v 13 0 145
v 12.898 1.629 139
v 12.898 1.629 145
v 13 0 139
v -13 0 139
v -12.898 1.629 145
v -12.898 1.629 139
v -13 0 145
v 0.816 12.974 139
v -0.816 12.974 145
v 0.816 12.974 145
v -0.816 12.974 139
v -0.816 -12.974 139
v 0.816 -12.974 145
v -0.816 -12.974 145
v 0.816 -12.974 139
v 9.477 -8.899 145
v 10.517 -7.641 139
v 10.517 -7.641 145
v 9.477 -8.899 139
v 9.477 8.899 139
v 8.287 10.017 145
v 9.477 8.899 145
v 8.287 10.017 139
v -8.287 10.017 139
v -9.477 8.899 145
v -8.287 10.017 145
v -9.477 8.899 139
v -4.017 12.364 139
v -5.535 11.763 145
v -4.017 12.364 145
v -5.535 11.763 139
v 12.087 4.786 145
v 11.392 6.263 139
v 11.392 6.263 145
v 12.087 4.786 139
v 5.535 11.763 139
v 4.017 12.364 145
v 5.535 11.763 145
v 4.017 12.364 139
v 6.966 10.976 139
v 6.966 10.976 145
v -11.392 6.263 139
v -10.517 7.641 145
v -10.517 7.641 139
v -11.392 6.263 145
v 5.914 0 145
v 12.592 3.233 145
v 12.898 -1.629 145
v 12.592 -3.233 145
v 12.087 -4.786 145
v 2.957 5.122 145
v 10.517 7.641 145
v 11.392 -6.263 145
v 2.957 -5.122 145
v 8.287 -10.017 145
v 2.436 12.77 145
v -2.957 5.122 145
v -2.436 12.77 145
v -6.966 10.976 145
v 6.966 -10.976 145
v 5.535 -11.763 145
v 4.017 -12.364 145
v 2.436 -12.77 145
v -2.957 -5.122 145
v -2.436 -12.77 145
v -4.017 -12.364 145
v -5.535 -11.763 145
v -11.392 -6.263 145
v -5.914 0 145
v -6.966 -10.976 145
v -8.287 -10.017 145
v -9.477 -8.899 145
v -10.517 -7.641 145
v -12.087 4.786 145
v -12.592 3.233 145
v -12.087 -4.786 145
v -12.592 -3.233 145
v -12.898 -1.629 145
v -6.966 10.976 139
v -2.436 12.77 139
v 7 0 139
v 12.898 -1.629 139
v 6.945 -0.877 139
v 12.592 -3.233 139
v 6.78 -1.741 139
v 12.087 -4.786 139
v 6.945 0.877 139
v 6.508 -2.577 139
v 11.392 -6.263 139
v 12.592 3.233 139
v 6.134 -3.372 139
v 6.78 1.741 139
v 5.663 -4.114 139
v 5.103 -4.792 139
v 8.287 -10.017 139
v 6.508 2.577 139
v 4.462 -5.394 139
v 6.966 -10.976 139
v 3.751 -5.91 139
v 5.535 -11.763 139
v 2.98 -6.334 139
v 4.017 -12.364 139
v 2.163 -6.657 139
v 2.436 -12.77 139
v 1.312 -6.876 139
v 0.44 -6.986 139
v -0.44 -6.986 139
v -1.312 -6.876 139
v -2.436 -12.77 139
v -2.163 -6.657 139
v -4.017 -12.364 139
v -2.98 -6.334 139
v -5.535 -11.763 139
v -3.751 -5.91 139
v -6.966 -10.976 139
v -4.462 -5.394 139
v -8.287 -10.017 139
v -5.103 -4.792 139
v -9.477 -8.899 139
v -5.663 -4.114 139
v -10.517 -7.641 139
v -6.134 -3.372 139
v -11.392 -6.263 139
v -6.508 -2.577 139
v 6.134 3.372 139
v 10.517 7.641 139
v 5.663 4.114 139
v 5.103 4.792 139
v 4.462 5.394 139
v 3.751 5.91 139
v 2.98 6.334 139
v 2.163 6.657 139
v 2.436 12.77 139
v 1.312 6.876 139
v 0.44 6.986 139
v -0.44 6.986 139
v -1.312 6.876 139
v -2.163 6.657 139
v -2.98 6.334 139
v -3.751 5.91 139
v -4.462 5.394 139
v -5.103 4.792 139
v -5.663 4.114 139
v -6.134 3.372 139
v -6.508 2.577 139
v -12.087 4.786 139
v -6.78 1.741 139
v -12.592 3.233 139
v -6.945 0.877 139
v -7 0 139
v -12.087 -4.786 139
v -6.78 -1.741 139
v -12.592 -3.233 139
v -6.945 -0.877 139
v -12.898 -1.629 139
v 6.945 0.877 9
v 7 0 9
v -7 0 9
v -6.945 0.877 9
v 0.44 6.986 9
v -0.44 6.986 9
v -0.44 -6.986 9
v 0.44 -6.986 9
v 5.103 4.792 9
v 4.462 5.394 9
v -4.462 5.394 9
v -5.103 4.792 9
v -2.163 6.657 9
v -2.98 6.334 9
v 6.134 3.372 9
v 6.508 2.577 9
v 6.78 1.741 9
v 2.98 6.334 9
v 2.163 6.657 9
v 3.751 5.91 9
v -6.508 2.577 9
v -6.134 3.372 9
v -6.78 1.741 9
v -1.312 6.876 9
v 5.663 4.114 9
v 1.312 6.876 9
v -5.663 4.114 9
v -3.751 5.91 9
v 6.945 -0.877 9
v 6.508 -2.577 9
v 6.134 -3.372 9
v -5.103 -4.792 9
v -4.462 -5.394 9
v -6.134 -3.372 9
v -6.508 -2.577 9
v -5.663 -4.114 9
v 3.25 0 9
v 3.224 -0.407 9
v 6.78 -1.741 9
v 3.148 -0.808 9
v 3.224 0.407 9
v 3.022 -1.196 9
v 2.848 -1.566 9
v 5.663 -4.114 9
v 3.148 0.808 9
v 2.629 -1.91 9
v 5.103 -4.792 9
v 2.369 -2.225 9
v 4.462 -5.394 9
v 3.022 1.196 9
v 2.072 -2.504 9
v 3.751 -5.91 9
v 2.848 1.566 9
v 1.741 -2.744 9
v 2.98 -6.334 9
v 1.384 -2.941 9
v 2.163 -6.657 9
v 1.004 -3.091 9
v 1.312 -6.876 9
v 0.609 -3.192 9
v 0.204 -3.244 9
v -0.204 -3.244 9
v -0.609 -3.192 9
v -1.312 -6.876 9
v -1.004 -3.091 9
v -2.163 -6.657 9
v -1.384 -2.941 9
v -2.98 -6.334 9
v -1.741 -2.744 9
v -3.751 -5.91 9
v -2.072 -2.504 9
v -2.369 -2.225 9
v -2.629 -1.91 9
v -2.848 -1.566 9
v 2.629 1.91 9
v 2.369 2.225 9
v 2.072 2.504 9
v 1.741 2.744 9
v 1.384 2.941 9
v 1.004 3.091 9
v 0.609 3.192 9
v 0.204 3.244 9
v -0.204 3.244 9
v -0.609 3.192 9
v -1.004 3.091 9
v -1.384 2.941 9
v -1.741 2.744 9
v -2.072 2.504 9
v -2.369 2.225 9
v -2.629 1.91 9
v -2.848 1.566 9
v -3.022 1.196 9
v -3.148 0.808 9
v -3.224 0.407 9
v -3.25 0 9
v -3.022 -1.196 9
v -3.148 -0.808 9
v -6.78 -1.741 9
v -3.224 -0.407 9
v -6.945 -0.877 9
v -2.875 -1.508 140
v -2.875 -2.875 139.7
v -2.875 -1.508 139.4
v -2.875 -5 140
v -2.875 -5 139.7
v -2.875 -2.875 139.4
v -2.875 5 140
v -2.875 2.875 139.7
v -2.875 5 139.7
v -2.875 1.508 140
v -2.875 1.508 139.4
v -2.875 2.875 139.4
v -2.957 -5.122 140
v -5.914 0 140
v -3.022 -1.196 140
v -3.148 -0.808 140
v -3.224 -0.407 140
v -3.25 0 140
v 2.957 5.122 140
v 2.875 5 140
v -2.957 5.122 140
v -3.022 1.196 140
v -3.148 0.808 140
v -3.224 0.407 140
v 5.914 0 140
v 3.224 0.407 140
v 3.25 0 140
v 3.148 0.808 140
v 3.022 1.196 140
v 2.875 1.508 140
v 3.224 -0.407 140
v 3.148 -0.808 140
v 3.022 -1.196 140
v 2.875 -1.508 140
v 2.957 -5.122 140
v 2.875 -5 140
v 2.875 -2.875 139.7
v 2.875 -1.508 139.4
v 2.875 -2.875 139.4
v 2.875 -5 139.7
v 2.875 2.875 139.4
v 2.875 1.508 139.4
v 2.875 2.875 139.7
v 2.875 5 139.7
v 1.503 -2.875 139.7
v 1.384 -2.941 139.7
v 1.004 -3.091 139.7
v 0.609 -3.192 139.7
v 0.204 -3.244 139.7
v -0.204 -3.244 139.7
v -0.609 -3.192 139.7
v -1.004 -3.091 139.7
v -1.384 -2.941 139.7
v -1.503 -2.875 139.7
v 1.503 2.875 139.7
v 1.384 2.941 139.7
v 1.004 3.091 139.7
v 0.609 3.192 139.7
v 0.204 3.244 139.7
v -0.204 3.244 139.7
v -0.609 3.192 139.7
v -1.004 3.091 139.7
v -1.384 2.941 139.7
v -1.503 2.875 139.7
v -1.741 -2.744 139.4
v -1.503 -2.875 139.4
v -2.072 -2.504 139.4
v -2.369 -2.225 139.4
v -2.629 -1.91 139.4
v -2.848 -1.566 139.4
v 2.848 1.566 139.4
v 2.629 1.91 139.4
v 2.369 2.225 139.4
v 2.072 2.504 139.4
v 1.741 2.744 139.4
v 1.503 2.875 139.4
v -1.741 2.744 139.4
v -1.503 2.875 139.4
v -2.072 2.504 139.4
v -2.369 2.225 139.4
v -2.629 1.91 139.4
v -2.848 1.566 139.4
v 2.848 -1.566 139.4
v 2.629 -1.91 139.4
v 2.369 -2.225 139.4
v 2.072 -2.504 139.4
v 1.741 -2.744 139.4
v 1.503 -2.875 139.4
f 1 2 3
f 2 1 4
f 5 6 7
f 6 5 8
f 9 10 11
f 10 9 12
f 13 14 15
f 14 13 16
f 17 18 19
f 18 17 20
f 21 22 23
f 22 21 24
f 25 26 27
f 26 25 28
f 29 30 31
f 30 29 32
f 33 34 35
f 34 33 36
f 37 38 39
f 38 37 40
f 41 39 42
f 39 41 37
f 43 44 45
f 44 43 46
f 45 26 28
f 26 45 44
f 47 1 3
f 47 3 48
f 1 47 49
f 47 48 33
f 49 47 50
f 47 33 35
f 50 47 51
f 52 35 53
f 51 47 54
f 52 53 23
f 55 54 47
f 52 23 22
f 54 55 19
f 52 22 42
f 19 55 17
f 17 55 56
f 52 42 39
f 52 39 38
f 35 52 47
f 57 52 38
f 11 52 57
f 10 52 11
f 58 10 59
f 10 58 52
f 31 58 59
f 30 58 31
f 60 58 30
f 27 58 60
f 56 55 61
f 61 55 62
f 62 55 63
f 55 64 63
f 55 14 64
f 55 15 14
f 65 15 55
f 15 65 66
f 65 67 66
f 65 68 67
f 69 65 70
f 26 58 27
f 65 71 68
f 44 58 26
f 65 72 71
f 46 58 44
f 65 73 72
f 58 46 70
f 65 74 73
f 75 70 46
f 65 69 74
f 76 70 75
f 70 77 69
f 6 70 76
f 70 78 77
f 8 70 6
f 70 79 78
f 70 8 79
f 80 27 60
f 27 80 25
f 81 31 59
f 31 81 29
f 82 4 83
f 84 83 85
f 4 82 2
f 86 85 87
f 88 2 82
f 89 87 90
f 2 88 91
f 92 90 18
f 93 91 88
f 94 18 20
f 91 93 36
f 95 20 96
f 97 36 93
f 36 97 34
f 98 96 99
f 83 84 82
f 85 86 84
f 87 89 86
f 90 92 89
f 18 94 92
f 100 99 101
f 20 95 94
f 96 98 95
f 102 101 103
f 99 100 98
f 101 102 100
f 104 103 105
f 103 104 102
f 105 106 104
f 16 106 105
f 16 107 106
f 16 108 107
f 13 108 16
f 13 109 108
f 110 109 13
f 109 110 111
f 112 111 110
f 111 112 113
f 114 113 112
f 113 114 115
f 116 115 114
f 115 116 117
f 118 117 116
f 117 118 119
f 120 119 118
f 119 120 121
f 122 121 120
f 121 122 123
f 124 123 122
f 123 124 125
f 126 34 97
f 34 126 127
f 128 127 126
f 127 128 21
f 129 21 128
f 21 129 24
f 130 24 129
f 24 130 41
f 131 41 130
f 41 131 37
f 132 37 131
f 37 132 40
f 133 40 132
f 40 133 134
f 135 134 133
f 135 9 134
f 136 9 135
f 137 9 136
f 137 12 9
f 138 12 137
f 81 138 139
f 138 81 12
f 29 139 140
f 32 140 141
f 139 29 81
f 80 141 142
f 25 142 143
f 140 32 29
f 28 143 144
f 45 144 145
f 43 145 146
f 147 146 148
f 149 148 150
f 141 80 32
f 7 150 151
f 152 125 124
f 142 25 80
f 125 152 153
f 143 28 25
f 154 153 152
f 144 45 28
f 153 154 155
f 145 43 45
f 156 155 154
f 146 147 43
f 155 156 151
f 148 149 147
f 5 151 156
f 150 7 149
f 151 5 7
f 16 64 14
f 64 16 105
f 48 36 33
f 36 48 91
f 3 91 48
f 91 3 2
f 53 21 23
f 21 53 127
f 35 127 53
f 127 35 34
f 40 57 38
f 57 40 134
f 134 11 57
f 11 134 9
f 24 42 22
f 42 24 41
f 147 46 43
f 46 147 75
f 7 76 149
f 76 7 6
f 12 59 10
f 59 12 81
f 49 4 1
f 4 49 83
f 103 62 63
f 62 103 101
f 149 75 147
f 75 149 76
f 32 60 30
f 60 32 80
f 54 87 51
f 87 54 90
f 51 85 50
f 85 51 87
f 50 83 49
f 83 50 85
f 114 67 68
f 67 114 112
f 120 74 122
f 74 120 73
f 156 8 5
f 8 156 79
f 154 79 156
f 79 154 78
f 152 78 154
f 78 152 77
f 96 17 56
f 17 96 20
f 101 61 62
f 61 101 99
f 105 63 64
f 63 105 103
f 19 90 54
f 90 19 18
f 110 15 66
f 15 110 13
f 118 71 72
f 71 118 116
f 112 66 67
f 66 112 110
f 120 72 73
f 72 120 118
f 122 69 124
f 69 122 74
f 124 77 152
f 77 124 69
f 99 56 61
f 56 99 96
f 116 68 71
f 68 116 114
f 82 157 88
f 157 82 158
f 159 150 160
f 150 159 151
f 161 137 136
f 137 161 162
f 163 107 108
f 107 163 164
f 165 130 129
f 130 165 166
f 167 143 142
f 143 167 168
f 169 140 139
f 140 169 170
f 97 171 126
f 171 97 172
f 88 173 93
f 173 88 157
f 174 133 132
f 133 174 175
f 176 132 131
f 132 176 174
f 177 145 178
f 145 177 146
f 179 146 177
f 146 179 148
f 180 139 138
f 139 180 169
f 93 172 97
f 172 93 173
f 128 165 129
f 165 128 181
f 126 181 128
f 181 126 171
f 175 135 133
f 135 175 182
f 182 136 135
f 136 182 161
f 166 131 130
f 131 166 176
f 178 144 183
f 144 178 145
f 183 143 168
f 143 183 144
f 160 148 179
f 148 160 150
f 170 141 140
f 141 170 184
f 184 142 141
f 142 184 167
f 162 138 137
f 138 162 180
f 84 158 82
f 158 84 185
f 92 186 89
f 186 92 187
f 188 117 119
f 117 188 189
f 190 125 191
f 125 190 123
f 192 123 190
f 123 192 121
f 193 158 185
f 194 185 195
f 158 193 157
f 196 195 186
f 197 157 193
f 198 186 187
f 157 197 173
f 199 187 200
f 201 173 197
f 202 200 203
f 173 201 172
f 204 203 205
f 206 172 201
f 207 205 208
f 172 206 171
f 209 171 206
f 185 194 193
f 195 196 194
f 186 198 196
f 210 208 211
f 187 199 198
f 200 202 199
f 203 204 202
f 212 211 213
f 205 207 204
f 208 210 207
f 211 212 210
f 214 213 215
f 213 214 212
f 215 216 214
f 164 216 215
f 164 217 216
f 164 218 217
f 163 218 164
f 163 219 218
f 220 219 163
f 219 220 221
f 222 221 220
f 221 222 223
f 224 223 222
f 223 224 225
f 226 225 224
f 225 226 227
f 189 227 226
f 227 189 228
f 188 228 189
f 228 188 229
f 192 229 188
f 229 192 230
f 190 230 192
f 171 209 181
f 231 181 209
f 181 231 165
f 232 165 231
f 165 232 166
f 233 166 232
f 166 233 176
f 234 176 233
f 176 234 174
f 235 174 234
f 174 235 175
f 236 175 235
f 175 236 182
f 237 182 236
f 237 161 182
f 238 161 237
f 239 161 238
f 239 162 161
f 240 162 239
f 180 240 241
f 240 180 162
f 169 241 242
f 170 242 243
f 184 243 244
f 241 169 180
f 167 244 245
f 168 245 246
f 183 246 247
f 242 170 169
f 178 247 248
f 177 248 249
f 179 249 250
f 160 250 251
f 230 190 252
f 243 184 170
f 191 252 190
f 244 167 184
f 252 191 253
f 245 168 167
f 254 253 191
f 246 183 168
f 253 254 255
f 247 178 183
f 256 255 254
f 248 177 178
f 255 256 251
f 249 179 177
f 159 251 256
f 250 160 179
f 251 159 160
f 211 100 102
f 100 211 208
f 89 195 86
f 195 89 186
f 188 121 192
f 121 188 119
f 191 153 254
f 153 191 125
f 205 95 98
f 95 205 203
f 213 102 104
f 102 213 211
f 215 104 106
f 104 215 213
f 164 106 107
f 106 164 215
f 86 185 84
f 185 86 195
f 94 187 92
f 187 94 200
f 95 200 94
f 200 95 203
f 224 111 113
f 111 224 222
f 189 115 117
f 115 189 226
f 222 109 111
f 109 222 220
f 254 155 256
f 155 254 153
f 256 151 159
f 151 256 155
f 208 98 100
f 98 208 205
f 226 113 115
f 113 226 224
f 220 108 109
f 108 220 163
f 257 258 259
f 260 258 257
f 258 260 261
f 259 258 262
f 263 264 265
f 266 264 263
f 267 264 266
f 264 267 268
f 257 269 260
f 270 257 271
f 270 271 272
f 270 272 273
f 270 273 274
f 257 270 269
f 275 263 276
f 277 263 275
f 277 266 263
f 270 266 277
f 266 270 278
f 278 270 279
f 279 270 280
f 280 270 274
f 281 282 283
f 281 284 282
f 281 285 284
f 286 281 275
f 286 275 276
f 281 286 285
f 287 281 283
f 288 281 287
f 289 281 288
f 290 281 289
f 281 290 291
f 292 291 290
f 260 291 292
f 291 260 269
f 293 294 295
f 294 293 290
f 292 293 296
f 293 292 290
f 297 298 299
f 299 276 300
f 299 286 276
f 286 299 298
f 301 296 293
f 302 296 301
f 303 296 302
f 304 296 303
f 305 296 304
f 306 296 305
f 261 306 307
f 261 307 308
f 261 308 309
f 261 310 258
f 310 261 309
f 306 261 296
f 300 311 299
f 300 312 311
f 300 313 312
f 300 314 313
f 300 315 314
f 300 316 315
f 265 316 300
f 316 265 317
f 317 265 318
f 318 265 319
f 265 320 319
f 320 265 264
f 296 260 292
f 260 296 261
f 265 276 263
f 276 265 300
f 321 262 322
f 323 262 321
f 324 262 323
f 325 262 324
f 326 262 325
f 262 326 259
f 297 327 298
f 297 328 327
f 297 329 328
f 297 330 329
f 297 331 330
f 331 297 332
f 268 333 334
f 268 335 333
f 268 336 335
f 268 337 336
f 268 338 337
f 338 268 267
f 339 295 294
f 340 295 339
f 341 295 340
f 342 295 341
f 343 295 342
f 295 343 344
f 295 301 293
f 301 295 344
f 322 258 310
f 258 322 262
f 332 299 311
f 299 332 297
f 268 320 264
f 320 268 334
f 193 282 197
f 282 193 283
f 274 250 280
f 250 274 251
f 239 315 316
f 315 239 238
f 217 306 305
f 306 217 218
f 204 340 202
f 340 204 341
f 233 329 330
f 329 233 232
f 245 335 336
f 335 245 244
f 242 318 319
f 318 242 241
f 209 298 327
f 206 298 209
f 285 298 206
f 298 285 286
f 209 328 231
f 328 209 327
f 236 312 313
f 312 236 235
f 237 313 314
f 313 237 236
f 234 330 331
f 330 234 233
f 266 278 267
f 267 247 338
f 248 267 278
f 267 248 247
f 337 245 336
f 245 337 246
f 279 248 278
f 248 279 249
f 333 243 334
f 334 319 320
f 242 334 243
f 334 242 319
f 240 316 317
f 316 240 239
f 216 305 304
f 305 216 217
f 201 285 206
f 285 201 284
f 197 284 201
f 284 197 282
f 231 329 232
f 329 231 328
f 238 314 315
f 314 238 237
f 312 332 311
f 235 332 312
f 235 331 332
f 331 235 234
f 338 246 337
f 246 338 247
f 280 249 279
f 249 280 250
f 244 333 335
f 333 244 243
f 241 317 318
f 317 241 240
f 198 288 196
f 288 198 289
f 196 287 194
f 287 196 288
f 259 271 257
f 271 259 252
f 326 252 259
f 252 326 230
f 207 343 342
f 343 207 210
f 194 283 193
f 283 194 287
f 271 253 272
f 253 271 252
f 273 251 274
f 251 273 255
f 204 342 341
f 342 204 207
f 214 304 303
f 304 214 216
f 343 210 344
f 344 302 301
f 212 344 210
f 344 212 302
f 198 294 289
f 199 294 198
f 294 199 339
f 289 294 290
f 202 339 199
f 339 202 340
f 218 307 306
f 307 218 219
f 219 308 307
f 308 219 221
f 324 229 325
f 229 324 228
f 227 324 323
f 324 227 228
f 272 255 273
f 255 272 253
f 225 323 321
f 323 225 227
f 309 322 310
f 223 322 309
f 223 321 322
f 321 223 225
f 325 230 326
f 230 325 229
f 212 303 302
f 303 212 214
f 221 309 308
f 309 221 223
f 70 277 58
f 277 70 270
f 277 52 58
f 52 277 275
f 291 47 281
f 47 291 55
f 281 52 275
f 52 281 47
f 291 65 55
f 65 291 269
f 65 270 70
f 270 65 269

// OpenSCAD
$fn = 50;


difference() {
	union() {
		translate(v = [0, 0, 139.0000000000]) {
			cylinder(h = 6, r = 13.0000000000);
		}
		translate(v = [0, 0, 9.0000000000]) {
			cylinder(h = 136, r = 7.0000000000);
		}
	}
	union() {
		translate(v = [0, 0, 145]) {
			rotate(a = [0, 0, 0]) {
				difference() {
					union() {
						#translate(v = [-2.8750000000, -5.0000000000, -5.3000000000]) {
							cube(size = [5.7500000000, 10, 0.3000000000]);
						}
						#translate(v = [-2.8750000000, -2.8750000000, -5.6000000000]) {
							cube(size = [5.7500000000, 5.7500000000, 0.3000000000]);
						}
						#translate(v = [-2.8750000000, -5.0000000000, 0]) {
							cube(size = [5.7500000000, 10, 0.3000000000]);
						}
						#translate(v = [-2.8750000000, -2.8750000000, 0.3000000000]) {
							cube(size = [5.7500000000, 5.7500000000, 0.3000000000]);
						}
						#translate(v = [0, 0, -100.0000000000]) {
							cylinder(h = 200, r = 3.2500000000);
						}
						translate(v = [0, 0, -5]) {
							#linear_extrude(height = 5) {
								polygon(points = [[5.9142500000, 0.0000000000], [2.9571250000, 5.1218907443], [-2.9571250000, 5.1218907443], [-5.9142500000, 0.0000000000], [-2.9571250000, -5.1218907443], [2.9571250000, -5.1218907443]]);
							}
						}
						#translate(v = [-2.8750000000, -5.0000000000, -5.3000000000]) {
							cube(size = [5.7500000000, 10, 0.3000000000]);
						}
						#translate(v = [-2.8750000000, -2.8750000000, -5.6000000000]) {
							cube(size = [5.7500000000, 5.7500000000, 0.3000000000]);
						}
						#translate(v = [-2.8750000000, -5.0000000000, 0]) {
							cube(size = [5.7500000000, 10, 0.3000000000]);
						}
						#translate(v = [-2.8750000000, -2.8750000000, 0.3000000000]) {
							cube(size = [5.7500000000, 5.7500000000, 0.3000000000]);
						}
						#translate(v = [0, 0, -100.0000000000]) {
							cylinder(h = 200, r = 3.2500000000);
						}
						#translate(v = [-2.8750000000, -5.0000000000, -5.3000000000]) {
							cube(size = [5.7500000000, 10, 0.3000000000]);
						}
						#translate(v = [-2.8750000000, -2.8750000000, -5.6000000000]) {
							cube(size = [5.7500000000, 5.7500000000, 0.3000000000]);
						}
						#translate(v = [-2.8750000000, -5.0000000000, 0]) {
							cube(size = [5.7500000000, 10, 0.3000000000]);
						}
						#translate(v = [-2.8750000000, -2.8750000000, 0.3000000000]) {
							cube(size = [5.7500000000, 5.7500000000, 0.3000000000]);
						}
						#translate(v = [0, 0, -100.0000000000]) {
							cylinder(h = 200, r = 3.2500000000);
						}
					}
					union();
				}
			}
		}
		#translate(v = [0, 0, -100.0000000000]) {
			cylinder(h = 200, r = 3.2500000000);
		}
	}
}
